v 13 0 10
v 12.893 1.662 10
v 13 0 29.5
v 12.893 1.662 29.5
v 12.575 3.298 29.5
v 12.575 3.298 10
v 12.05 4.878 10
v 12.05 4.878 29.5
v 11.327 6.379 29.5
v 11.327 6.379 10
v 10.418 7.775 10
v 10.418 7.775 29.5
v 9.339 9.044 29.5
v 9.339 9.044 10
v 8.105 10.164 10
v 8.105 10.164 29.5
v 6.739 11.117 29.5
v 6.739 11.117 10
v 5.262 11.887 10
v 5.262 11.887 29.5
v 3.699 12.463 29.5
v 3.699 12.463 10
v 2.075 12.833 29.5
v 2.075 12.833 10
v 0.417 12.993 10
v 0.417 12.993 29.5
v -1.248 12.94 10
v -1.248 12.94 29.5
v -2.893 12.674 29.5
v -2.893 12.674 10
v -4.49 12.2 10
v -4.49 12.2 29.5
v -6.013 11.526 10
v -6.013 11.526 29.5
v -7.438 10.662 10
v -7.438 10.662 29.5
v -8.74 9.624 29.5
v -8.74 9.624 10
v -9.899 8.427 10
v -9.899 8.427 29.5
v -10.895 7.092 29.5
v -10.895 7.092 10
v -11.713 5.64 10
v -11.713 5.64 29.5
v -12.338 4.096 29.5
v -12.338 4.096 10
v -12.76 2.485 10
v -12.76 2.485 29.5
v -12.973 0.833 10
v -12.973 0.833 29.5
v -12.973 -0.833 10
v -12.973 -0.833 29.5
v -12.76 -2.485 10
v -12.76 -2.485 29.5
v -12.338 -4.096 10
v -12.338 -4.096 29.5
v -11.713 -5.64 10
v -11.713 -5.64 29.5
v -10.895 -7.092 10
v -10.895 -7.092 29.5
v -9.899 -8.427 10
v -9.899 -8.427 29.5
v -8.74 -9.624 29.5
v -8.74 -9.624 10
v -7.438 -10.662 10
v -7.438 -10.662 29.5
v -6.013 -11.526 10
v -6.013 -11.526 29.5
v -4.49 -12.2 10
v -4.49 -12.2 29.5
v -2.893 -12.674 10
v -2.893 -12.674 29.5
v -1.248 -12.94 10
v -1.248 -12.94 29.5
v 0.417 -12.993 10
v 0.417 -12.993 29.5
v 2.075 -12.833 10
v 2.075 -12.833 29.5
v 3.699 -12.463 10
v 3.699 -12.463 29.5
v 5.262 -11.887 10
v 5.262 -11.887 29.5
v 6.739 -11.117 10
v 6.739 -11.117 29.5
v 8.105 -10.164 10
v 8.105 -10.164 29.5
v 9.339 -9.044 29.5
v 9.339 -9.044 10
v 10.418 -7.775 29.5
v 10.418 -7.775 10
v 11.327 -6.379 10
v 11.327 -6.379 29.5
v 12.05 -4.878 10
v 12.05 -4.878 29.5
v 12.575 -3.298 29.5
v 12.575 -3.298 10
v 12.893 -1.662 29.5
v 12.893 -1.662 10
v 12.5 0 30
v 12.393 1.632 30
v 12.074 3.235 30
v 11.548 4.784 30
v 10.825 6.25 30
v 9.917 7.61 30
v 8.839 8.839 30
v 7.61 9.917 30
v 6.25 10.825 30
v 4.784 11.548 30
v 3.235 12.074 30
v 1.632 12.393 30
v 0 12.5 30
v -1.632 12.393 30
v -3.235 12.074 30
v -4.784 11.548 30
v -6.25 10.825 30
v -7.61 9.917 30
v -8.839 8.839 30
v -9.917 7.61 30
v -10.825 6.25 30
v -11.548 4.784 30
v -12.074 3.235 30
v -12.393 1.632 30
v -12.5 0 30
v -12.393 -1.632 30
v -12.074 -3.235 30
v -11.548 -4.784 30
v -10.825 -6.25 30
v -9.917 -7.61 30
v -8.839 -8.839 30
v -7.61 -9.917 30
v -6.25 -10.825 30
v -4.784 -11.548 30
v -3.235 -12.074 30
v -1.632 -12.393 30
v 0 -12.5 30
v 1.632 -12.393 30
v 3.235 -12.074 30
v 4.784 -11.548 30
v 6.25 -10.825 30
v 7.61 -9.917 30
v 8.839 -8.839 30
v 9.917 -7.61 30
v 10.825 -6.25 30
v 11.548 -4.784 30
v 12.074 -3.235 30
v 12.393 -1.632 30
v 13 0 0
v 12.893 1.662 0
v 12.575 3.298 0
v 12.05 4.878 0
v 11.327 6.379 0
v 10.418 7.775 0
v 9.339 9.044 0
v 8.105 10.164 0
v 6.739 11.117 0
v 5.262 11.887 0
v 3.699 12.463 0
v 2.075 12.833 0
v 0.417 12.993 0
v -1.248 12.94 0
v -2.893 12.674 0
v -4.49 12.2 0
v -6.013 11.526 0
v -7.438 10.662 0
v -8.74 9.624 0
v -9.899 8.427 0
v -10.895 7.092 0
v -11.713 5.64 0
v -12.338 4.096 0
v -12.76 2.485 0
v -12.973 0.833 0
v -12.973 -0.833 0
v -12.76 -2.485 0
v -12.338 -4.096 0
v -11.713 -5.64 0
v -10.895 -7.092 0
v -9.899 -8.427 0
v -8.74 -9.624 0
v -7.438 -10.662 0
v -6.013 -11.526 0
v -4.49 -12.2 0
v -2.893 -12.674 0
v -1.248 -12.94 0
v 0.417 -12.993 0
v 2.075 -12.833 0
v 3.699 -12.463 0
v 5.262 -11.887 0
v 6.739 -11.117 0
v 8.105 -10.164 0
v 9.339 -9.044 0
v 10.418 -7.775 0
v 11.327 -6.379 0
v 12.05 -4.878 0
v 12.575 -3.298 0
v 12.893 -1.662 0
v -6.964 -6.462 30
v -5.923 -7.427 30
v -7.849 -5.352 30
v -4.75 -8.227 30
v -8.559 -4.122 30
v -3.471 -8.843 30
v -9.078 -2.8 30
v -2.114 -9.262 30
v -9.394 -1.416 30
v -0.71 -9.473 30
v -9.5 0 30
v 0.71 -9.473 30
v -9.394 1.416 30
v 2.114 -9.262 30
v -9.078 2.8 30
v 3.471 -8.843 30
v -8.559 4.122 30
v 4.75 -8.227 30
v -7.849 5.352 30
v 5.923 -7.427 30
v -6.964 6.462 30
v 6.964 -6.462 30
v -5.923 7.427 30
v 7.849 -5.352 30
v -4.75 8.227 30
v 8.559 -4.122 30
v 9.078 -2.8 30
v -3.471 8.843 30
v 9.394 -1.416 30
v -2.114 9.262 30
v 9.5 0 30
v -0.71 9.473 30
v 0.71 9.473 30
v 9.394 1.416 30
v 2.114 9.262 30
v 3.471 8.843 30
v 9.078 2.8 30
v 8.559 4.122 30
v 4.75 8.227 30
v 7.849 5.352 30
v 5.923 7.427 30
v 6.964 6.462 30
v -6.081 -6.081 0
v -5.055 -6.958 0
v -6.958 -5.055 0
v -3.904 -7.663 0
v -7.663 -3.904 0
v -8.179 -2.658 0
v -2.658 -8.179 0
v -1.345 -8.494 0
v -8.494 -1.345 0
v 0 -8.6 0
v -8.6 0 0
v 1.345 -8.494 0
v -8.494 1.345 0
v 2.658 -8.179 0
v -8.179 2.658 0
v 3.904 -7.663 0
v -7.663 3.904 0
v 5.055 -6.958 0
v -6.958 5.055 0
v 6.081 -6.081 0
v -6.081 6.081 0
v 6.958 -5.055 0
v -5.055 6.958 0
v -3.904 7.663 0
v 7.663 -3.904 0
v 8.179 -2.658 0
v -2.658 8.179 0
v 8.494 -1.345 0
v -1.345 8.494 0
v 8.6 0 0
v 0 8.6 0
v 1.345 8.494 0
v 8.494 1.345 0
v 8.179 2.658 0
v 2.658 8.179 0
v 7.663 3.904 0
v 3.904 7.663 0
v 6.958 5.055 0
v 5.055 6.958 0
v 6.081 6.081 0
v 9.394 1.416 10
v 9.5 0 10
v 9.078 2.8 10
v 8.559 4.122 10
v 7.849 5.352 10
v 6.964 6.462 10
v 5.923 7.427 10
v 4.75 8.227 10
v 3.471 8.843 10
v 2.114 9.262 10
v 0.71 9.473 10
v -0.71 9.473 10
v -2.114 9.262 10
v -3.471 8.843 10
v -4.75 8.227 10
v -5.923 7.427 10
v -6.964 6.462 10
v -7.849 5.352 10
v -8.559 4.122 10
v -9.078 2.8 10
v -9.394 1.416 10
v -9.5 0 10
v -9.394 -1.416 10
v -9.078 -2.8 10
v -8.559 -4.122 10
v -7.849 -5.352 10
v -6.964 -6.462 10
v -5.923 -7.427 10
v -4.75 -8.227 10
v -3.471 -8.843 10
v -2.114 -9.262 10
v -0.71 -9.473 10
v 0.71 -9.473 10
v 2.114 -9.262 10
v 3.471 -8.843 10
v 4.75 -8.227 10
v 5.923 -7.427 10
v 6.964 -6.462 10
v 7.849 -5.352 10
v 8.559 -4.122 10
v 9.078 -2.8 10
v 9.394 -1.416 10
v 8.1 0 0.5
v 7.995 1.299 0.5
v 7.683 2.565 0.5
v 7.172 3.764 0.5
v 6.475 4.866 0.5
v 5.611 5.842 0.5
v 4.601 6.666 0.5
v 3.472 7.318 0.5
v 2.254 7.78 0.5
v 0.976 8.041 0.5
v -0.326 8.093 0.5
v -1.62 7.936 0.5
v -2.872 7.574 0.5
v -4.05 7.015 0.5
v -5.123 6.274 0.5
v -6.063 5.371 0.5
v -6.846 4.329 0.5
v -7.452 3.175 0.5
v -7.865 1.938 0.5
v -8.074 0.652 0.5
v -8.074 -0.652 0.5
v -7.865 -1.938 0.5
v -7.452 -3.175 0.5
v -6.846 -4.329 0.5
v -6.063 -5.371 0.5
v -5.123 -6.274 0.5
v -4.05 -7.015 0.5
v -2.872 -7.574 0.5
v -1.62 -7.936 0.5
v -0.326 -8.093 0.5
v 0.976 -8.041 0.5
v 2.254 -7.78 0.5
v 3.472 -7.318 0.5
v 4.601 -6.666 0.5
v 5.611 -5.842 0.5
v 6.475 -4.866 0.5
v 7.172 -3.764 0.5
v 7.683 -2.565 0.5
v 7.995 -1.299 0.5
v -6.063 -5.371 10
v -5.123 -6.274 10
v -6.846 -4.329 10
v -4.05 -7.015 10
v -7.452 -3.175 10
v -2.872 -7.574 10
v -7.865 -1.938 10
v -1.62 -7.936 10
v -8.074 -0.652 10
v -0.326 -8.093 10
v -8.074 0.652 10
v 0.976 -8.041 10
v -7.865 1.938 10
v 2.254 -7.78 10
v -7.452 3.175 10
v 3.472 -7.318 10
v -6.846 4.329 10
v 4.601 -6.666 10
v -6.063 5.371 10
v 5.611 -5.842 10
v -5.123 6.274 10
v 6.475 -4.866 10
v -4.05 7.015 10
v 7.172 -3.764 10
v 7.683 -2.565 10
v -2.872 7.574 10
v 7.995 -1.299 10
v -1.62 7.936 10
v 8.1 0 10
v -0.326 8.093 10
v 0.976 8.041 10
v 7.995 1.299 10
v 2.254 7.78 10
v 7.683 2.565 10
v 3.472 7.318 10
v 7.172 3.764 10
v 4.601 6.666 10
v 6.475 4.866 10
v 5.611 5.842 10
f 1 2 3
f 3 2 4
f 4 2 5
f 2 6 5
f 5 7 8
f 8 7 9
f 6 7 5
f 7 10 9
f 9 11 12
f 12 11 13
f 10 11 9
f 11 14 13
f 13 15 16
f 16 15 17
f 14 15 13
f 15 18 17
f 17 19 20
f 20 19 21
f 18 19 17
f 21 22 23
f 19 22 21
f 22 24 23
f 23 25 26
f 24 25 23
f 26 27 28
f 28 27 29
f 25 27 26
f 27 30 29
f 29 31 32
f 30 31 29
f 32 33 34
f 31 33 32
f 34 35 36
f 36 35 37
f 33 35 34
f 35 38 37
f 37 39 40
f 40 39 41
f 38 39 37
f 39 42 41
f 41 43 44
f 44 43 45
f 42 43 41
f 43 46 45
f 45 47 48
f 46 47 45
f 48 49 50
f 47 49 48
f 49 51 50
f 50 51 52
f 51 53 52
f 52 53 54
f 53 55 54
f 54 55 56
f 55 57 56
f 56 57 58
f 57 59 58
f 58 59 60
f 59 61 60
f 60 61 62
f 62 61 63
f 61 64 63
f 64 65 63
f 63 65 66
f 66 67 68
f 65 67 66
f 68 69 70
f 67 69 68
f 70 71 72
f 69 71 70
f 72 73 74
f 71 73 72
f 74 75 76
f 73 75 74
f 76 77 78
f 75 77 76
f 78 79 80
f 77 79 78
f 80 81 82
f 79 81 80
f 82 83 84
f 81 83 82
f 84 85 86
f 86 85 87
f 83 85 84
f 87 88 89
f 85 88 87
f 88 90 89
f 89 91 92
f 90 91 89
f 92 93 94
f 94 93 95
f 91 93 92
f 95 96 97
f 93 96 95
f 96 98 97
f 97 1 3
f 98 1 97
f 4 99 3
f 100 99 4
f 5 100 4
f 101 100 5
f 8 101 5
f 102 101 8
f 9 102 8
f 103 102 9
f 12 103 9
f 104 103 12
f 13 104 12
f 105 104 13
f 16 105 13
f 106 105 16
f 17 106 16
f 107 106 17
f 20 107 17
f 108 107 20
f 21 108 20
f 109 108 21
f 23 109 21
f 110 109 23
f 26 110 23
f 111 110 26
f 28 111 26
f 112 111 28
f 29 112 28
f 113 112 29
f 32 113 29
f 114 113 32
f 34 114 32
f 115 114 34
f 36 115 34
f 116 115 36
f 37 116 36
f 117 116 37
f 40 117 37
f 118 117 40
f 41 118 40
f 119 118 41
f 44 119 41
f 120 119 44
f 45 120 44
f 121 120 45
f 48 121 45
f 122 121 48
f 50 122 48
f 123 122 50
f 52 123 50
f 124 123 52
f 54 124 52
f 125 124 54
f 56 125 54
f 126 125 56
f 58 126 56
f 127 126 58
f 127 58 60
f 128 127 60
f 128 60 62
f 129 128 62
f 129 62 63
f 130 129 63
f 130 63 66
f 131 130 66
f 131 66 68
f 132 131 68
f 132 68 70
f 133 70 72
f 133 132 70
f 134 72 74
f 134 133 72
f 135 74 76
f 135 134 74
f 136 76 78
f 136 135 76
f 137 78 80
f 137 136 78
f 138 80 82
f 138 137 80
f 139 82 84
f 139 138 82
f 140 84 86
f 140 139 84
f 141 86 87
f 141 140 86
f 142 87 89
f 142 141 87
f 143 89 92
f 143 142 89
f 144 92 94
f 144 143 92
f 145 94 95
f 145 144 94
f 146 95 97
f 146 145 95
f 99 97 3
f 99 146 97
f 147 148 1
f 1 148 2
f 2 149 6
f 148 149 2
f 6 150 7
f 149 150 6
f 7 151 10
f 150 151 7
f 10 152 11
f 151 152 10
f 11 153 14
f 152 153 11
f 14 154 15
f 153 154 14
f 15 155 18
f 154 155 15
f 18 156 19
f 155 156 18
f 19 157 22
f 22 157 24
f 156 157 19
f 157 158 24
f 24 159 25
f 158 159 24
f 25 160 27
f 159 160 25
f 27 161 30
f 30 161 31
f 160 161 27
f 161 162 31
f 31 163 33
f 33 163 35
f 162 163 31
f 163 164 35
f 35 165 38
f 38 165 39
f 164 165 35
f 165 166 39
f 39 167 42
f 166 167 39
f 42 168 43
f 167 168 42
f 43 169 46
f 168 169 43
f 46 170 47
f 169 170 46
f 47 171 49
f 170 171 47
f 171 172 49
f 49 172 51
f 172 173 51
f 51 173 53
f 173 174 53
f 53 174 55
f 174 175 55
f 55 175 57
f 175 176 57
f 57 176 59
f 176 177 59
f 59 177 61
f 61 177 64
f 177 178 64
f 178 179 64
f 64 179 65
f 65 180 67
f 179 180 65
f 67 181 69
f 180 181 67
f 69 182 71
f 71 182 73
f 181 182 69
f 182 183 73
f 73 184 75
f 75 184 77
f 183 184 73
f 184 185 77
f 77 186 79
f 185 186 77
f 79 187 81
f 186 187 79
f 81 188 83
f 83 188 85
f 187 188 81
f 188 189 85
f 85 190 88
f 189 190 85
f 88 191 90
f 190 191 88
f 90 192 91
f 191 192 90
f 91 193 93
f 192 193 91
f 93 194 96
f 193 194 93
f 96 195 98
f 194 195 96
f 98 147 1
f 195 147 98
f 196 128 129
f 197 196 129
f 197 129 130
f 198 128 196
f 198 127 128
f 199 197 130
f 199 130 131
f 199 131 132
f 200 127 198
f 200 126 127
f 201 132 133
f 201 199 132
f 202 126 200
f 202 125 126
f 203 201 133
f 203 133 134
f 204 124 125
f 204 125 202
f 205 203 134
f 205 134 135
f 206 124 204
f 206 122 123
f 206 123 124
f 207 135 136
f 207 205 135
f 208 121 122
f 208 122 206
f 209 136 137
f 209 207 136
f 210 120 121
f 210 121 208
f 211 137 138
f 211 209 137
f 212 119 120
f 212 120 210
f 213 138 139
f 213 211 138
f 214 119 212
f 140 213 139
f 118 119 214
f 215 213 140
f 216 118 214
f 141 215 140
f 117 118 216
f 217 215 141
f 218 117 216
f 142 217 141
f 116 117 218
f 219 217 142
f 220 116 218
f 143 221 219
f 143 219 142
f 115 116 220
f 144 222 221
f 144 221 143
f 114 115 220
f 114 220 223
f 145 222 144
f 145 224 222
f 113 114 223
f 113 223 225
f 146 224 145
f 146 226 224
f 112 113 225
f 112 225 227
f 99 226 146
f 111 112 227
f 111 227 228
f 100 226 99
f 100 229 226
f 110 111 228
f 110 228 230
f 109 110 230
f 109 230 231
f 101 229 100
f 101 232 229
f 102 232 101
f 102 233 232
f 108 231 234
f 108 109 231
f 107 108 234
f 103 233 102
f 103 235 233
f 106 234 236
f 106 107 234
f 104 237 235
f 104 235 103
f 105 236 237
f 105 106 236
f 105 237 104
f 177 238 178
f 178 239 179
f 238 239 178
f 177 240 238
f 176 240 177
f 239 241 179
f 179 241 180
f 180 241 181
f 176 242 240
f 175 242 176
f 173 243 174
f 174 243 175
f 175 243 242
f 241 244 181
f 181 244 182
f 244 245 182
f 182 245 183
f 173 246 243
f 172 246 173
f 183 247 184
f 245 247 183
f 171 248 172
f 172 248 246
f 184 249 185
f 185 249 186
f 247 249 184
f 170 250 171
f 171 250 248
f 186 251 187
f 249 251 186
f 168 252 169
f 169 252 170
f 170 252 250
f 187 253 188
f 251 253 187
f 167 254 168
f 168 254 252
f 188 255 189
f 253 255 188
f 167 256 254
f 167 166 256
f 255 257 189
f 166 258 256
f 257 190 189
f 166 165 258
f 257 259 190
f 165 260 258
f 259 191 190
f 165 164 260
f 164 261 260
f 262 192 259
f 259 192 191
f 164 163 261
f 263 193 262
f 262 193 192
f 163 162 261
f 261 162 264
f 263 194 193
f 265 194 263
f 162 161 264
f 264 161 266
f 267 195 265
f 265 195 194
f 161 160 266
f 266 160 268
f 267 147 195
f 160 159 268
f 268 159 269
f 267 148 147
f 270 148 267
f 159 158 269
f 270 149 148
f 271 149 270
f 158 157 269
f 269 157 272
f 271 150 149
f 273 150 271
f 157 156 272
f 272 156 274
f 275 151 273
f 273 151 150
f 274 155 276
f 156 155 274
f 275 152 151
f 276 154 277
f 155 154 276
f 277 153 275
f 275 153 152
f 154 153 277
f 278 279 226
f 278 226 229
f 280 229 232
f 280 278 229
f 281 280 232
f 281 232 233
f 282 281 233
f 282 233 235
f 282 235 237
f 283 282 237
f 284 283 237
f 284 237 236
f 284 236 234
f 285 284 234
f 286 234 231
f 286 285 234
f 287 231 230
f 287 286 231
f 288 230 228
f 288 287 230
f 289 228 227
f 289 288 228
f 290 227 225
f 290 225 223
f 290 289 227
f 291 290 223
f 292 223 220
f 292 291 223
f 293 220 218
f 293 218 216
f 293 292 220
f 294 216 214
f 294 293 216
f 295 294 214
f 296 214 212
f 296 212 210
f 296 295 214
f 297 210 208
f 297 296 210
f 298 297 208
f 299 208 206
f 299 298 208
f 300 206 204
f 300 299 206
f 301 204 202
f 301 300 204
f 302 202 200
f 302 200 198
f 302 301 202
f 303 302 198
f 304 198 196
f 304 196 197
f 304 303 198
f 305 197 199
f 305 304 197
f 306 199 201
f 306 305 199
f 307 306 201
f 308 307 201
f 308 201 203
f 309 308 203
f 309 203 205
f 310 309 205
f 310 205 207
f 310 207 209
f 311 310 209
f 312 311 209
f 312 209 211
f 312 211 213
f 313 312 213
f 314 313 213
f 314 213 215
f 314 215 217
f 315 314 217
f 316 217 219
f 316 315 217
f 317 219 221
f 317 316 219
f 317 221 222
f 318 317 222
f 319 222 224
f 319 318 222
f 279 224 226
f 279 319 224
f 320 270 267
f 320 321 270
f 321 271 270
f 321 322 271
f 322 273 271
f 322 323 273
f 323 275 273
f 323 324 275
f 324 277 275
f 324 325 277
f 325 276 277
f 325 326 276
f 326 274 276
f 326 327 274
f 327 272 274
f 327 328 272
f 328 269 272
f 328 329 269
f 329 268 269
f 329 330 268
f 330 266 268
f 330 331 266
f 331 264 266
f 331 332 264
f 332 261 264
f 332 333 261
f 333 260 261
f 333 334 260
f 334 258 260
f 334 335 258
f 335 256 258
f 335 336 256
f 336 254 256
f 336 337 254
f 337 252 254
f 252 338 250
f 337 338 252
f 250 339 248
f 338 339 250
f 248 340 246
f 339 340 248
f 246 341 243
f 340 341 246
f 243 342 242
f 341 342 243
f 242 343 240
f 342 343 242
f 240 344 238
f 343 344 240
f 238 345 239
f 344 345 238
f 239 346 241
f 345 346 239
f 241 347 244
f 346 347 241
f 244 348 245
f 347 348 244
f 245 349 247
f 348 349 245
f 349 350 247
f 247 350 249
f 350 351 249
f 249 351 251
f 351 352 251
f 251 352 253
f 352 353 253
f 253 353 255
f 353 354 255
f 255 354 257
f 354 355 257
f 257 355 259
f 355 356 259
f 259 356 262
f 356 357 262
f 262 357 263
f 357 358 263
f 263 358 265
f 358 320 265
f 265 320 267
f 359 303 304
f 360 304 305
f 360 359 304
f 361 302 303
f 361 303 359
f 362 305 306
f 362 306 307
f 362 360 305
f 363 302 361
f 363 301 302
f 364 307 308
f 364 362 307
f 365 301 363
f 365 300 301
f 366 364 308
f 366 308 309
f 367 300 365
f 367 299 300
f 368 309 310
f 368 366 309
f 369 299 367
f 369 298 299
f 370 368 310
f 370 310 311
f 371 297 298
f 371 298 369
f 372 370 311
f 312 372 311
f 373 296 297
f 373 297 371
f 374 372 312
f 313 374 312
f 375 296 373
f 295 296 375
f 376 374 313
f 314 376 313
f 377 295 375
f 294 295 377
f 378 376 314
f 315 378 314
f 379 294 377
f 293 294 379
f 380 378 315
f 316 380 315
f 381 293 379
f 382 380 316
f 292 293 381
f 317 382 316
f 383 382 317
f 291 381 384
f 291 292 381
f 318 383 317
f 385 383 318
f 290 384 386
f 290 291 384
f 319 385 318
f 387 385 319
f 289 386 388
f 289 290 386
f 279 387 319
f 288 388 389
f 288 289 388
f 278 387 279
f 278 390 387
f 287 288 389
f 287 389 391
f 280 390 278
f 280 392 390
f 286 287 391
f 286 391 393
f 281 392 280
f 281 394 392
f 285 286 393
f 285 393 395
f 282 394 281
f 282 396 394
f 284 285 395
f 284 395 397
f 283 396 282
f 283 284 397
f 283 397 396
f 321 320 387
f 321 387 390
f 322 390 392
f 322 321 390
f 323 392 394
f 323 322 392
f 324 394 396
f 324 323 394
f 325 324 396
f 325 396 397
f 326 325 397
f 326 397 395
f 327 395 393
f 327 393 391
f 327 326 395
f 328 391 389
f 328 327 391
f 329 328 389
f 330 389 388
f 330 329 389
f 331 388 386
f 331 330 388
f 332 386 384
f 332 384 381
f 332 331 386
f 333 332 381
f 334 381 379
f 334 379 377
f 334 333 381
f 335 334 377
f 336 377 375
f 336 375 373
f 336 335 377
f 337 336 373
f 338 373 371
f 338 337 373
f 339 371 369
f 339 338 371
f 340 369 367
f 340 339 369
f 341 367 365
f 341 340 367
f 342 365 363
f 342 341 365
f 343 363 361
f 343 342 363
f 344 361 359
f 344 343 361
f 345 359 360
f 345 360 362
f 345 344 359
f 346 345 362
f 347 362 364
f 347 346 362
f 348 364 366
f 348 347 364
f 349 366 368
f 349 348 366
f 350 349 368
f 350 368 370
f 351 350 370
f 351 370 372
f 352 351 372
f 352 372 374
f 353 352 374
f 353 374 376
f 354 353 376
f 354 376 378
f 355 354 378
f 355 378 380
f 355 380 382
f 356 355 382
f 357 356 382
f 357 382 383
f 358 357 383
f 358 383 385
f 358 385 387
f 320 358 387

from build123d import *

# Parameters (mm, degrees)
SKETCH_R        = 13
SKETCH_R_2      = 8.1
PAD_DEPTH       = 10
SKETCH001_R     = 13
SKETCH001_R_2   = 9.5
PAD001_DEPTH    = 20
CHAMFER_SIZE    = 0.5
CHAMFER001_SIZE = 0.5


with BuildPart() as part:
    # Sketch → Pad (new body)
    with BuildSketch(Plane.XY):
        Circle(SKETCH_R)
        Circle(SKETCH_R_2, mode=Mode.SUBTRACT)
    extrude(amount=PAD_DEPTH)

    # Sketch001 (on Face4 of Pad) → Pad001 (join)
    with BuildSketch(Plane.XY.offset(10)):
        Circle(SKETCH001_R)
        Circle(SKETCH001_R_2, mode=Mode.SUBTRACT)
    extrude(amount=PAD001_DEPTH)

    # Chamfer
    chamfer_edges = [part.edges().sort_by_distance(p)[0] for p in [
        (-8.1, 0, 0),
    ]]
    chamfer(chamfer_edges, length=CHAMFER_SIZE)

    # Chamfer001
    chamfer001_edges = [part.edges().sort_by_distance(p)[0] for p in [
        (-13, 0, 30),
    ]]
    chamfer(chamfer001_edges, length=CHAMFER001_SIZE)


solid = part.part
